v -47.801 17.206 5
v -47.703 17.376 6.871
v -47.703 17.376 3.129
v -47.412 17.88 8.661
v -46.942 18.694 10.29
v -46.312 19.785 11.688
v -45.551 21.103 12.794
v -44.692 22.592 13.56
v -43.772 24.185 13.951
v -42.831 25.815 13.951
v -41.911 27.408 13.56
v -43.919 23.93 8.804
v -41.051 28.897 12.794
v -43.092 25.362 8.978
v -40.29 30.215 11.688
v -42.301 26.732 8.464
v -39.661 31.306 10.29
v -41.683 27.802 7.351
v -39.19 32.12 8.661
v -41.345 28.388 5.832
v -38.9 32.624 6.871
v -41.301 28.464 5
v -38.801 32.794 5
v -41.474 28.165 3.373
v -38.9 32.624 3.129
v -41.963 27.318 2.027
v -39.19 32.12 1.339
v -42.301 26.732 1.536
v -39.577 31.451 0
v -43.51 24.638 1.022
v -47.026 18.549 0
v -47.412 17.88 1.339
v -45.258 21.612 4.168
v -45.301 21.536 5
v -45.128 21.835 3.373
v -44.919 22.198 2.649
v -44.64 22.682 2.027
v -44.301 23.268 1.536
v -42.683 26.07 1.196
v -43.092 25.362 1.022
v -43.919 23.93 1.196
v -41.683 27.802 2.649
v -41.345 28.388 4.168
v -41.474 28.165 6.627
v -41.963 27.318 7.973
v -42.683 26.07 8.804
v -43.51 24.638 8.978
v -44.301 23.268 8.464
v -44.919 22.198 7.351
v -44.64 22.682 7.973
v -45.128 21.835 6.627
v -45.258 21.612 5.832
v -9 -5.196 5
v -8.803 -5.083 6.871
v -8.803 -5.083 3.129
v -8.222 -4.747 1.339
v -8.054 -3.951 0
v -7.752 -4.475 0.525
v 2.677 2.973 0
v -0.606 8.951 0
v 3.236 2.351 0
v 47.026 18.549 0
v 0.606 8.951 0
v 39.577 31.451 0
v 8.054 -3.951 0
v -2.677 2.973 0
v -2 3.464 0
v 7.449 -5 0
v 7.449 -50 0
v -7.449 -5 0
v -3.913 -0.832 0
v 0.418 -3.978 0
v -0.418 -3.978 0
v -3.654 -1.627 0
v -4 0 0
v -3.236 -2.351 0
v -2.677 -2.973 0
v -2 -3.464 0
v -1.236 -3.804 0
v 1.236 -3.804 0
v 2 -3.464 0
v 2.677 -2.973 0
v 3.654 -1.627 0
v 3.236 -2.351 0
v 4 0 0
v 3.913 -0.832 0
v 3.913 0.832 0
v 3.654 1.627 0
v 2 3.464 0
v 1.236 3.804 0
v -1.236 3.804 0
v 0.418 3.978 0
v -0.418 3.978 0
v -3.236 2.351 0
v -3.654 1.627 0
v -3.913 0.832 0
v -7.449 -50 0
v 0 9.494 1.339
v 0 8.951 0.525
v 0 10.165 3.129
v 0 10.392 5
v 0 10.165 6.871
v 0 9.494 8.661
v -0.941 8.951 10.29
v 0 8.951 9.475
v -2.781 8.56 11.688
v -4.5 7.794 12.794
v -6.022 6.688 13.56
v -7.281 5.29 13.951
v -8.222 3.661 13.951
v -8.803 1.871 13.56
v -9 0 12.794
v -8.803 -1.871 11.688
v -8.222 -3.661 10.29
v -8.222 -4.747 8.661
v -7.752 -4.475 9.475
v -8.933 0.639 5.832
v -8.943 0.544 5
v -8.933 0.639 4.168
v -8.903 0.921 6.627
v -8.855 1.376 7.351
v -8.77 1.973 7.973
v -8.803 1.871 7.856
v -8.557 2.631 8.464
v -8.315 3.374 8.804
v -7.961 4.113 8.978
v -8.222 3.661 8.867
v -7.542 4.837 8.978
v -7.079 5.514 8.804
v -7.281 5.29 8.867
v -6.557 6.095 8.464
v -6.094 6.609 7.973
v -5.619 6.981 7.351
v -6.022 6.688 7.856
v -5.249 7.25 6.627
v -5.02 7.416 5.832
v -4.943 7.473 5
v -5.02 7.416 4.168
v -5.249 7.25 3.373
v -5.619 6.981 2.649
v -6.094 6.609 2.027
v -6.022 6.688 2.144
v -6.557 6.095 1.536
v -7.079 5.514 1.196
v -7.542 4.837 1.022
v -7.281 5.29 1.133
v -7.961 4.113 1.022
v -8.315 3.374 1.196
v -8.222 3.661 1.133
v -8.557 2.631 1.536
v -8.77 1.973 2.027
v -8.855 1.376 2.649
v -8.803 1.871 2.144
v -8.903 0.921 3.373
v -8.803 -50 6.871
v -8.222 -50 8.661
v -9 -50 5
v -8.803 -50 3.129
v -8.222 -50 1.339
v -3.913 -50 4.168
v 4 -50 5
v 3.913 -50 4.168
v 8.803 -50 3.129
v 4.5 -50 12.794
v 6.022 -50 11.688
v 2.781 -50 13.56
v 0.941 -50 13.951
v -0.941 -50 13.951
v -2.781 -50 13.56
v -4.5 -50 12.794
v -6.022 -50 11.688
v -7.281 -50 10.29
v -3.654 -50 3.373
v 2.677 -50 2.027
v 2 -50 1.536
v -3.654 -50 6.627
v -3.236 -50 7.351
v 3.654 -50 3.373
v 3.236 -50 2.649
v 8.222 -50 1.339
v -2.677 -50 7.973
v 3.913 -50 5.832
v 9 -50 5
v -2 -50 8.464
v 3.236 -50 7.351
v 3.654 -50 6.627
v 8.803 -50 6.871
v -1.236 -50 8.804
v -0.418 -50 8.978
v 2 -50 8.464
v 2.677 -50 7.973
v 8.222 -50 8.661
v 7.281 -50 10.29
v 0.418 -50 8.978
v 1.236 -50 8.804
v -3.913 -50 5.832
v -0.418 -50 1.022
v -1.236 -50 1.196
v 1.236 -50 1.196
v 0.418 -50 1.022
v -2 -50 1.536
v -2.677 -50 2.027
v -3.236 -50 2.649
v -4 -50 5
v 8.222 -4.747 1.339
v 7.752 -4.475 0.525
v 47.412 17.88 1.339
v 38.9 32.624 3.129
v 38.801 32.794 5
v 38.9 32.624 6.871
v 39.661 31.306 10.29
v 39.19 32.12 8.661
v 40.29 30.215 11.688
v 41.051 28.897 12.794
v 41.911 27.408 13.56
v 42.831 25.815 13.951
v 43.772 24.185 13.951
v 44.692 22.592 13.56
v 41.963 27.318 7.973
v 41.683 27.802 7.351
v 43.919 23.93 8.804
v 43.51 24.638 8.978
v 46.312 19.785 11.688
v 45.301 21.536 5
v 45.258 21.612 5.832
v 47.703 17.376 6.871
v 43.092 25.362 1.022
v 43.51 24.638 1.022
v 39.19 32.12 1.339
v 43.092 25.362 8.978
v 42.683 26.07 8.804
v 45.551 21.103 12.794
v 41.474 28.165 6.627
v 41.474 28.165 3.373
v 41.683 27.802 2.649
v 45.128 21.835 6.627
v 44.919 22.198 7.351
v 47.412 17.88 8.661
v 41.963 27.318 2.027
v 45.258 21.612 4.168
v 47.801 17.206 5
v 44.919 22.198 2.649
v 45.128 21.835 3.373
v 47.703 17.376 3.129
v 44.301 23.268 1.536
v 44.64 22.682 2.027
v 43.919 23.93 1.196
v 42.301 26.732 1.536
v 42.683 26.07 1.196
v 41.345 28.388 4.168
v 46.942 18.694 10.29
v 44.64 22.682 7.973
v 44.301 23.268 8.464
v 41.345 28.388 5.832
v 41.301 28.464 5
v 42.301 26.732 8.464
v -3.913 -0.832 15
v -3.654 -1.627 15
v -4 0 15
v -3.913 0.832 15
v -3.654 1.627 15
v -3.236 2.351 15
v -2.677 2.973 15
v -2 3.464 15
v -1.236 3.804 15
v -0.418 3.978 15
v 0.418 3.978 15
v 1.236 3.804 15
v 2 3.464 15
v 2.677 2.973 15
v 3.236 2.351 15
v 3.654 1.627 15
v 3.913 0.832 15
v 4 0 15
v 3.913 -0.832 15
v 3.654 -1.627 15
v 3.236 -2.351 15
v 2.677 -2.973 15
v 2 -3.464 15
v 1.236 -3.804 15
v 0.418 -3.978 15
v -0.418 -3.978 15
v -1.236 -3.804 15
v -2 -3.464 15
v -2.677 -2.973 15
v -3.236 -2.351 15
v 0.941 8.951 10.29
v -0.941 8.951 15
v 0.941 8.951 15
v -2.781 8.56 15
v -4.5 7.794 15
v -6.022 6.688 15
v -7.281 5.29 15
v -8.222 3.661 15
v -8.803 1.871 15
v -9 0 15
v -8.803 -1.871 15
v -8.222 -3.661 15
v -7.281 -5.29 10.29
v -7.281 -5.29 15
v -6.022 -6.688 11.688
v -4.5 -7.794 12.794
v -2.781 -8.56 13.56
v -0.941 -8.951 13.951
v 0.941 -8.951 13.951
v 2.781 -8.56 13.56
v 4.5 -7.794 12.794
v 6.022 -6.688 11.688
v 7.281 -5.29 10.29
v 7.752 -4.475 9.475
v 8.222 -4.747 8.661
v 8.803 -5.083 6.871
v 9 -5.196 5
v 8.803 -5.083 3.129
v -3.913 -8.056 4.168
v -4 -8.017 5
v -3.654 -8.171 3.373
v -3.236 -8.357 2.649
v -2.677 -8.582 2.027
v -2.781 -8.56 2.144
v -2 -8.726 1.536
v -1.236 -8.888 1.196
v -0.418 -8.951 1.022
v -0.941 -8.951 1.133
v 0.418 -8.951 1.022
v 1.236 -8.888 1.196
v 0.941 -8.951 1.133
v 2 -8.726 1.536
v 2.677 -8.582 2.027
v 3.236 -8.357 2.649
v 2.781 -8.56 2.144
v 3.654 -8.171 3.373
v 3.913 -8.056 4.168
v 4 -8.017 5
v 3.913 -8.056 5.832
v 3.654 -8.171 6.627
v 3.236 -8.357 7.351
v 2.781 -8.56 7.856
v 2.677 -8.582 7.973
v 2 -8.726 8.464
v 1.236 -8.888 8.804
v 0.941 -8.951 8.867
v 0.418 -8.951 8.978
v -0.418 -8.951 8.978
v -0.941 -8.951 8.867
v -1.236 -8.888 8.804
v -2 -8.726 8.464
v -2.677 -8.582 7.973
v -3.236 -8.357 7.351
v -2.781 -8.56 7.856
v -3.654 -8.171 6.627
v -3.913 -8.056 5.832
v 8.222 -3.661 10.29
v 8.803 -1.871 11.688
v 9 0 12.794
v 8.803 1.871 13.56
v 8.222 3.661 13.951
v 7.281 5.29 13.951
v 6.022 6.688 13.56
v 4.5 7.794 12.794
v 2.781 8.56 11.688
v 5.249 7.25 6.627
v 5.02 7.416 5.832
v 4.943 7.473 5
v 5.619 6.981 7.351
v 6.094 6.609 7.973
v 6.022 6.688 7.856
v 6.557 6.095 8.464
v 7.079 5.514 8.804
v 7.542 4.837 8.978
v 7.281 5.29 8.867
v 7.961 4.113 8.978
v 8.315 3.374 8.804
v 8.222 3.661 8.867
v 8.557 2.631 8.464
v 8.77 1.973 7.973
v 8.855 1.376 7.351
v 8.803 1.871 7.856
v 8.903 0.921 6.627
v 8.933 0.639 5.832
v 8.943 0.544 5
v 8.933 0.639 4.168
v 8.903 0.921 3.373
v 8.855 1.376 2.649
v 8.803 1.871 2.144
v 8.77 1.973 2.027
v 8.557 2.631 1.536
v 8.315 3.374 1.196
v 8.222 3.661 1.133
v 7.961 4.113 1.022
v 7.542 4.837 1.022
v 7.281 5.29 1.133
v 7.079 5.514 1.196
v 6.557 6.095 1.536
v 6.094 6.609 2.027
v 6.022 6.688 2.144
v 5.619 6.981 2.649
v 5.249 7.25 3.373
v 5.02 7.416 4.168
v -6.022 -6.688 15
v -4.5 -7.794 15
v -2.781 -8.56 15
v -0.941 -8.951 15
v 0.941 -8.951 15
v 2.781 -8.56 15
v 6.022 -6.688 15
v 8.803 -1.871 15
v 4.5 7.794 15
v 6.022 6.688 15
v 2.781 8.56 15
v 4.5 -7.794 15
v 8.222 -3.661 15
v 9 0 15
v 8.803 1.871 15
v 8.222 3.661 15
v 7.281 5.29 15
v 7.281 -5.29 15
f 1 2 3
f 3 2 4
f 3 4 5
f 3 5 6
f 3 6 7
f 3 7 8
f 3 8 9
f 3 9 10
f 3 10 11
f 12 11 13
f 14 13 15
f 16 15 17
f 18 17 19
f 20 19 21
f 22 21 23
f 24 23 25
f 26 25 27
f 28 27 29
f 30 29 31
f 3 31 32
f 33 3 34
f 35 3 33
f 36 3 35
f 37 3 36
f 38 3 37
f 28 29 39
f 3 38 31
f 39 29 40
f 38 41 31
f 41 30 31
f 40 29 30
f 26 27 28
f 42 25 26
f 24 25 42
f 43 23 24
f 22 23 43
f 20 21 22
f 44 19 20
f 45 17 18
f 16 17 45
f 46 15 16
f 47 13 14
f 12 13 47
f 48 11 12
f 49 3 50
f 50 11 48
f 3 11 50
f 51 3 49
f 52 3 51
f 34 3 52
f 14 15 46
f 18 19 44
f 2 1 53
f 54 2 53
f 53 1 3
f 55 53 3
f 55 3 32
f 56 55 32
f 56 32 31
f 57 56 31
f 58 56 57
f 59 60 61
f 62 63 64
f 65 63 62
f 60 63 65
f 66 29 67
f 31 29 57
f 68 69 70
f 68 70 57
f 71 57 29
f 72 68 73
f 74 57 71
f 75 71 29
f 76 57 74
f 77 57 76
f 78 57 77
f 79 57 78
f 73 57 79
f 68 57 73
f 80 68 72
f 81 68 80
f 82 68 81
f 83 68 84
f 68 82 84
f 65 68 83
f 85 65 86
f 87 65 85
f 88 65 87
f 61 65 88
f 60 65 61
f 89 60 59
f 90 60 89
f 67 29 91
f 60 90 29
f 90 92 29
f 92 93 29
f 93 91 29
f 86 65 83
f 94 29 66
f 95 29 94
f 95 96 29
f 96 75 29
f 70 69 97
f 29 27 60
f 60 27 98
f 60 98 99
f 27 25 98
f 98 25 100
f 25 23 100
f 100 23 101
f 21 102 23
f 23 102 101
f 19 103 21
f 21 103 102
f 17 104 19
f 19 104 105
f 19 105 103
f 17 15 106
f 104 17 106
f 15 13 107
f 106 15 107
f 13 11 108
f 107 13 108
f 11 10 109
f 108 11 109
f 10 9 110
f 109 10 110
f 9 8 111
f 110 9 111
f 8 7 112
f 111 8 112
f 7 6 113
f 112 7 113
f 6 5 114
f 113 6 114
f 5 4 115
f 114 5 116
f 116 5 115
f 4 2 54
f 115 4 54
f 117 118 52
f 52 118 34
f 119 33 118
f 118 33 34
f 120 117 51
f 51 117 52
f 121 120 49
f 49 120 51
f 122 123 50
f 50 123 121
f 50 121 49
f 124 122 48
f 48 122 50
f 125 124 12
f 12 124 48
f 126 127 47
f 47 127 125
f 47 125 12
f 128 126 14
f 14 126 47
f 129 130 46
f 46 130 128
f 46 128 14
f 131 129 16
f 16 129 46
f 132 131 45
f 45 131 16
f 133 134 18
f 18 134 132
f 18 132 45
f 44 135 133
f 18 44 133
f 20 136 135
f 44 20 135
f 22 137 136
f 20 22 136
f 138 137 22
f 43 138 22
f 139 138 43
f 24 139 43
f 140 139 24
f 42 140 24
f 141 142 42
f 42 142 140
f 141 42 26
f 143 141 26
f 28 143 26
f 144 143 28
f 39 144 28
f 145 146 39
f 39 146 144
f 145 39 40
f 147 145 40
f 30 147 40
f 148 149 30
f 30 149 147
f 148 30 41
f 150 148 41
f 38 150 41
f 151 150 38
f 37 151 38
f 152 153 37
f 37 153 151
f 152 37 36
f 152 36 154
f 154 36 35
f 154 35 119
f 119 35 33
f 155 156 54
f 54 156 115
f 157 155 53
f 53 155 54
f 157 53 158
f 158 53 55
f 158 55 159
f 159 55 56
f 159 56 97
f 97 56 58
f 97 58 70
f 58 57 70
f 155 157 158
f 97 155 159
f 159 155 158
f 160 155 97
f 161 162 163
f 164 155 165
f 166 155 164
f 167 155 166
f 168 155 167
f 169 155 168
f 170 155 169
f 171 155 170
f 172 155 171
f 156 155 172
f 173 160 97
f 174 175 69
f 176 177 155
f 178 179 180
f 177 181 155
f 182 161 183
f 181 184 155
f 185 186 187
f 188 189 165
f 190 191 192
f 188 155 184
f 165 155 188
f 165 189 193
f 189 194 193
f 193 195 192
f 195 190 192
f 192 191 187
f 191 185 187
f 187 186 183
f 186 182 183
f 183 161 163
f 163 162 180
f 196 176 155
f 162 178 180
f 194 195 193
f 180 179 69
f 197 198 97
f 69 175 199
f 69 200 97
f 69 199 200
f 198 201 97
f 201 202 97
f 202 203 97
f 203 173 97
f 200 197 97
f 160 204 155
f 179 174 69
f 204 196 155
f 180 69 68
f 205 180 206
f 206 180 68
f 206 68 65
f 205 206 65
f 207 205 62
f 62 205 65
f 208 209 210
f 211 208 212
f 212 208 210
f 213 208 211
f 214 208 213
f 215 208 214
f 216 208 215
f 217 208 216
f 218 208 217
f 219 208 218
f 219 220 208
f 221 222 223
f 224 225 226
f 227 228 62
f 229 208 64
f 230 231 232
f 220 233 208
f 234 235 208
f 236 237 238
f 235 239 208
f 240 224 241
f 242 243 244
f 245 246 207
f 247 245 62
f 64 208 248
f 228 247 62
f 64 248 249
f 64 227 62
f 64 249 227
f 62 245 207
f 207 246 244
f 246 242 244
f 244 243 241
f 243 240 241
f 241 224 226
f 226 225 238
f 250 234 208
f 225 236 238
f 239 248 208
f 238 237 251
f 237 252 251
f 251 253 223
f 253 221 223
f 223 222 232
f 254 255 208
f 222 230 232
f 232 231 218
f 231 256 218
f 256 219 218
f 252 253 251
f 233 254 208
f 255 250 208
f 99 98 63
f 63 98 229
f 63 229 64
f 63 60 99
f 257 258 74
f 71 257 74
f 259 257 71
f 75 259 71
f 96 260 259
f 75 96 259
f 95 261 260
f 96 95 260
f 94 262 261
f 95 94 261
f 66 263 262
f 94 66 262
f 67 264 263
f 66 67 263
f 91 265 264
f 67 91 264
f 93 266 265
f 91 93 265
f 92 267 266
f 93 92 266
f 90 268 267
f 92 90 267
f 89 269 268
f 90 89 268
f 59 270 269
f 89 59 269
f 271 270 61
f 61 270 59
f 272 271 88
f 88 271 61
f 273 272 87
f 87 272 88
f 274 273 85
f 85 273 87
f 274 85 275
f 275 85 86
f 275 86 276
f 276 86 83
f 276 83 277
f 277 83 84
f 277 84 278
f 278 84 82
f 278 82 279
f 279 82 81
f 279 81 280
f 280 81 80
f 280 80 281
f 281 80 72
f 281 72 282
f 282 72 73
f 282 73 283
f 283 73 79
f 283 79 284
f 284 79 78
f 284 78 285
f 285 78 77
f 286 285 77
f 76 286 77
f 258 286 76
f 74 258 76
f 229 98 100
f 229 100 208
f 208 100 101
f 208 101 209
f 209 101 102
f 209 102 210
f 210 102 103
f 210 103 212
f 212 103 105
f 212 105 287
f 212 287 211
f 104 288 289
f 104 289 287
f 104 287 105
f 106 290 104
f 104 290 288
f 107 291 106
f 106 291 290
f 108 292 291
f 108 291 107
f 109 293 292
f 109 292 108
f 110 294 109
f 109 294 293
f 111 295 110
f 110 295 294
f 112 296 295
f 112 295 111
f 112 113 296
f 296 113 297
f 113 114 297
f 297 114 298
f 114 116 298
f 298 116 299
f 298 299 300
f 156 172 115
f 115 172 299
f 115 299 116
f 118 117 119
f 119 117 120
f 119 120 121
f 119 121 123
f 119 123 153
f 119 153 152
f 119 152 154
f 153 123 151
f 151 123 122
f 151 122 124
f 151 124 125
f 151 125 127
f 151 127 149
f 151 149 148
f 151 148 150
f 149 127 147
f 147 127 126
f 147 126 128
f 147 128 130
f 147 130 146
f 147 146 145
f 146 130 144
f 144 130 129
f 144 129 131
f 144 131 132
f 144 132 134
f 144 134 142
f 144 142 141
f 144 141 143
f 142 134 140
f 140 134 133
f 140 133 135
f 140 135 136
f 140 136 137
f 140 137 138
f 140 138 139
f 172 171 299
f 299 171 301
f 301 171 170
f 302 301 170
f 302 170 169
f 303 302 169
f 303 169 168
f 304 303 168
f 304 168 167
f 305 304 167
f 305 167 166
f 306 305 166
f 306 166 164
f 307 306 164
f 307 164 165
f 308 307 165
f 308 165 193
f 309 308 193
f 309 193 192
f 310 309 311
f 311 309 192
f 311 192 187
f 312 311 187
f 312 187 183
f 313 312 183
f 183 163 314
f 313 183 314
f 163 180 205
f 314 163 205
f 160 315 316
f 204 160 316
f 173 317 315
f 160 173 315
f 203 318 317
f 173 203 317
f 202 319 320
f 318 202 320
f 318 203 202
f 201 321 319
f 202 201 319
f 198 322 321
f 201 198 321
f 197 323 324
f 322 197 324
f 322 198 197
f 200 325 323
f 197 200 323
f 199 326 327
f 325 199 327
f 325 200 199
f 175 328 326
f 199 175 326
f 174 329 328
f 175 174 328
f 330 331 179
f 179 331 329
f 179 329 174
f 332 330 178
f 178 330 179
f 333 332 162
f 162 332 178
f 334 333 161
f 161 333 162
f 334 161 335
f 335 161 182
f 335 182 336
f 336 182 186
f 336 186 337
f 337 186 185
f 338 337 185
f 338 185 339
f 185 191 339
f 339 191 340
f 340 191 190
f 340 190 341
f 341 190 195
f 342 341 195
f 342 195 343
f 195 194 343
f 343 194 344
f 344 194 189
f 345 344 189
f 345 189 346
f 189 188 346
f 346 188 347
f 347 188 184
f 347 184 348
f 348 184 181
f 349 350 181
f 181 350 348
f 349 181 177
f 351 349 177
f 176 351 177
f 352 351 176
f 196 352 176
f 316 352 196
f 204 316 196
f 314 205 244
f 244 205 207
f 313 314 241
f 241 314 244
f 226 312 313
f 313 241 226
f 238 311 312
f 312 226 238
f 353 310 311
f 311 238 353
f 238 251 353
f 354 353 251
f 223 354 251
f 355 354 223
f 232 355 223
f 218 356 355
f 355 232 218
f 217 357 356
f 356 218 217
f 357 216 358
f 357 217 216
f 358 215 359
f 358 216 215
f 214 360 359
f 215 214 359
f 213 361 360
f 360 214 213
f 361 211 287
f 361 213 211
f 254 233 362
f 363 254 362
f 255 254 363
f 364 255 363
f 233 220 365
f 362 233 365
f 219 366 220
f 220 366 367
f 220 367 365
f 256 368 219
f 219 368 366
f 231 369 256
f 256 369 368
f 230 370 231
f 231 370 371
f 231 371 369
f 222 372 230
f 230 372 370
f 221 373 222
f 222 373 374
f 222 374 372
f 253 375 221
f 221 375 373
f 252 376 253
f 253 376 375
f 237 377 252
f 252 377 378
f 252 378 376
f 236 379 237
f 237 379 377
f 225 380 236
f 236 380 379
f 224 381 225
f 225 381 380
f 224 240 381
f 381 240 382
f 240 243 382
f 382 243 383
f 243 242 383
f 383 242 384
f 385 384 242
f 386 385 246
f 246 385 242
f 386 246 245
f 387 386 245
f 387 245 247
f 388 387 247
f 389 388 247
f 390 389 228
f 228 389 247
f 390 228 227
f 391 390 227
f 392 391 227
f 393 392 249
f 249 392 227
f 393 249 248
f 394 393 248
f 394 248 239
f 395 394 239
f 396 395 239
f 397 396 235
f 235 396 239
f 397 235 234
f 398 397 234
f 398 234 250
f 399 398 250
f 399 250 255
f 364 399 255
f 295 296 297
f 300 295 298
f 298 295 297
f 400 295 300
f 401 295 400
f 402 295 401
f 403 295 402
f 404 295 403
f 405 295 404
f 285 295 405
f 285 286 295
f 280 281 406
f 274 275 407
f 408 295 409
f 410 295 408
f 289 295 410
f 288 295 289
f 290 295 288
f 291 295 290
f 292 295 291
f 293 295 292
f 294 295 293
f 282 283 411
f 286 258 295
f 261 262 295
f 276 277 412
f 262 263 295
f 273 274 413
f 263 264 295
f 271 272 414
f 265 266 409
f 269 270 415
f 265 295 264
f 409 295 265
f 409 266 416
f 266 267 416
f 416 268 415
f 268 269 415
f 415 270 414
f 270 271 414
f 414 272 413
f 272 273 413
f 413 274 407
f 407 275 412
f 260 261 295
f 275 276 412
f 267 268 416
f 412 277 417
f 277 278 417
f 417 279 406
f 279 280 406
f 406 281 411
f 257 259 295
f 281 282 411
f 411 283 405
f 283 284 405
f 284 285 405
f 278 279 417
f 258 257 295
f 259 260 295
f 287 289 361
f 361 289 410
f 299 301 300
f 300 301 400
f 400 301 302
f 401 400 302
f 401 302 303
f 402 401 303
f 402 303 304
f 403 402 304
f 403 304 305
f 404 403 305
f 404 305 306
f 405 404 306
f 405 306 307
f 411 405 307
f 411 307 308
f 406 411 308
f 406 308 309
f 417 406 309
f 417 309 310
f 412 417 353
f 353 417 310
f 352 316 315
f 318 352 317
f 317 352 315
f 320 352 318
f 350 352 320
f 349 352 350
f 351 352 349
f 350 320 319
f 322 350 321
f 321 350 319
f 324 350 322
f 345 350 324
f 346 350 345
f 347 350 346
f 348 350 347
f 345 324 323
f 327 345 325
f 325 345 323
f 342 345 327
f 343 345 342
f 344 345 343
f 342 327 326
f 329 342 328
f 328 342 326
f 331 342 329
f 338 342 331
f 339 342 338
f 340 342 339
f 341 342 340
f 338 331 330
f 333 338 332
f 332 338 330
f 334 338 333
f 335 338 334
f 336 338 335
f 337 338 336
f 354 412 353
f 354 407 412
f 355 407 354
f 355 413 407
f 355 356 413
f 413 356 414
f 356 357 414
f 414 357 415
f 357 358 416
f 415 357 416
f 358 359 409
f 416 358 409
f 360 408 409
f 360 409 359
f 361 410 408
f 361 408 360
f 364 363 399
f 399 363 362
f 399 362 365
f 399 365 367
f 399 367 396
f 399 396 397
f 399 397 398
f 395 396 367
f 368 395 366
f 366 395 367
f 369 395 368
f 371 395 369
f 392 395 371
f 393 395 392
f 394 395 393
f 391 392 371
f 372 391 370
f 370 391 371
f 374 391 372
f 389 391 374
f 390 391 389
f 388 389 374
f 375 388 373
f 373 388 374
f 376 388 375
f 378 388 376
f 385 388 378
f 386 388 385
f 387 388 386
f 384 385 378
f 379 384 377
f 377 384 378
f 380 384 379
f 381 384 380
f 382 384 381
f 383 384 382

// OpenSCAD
translate([0,0,-2])
difference() {
union() {
tube(17);
translate([0,0,7])for(i=[0:2])rotate([90,0,120*i])tube(50);
}
translate([0,0,-3])cube([150,150,10],true);
cylinder(17,r=4,$fn=30);
}



module tube(h) {
difference() {
	cylinder(h,r=9,$fn=30);
	translate([0,0,-0.5])cylinder(h+1,r=4,$fn=30);
}
}
